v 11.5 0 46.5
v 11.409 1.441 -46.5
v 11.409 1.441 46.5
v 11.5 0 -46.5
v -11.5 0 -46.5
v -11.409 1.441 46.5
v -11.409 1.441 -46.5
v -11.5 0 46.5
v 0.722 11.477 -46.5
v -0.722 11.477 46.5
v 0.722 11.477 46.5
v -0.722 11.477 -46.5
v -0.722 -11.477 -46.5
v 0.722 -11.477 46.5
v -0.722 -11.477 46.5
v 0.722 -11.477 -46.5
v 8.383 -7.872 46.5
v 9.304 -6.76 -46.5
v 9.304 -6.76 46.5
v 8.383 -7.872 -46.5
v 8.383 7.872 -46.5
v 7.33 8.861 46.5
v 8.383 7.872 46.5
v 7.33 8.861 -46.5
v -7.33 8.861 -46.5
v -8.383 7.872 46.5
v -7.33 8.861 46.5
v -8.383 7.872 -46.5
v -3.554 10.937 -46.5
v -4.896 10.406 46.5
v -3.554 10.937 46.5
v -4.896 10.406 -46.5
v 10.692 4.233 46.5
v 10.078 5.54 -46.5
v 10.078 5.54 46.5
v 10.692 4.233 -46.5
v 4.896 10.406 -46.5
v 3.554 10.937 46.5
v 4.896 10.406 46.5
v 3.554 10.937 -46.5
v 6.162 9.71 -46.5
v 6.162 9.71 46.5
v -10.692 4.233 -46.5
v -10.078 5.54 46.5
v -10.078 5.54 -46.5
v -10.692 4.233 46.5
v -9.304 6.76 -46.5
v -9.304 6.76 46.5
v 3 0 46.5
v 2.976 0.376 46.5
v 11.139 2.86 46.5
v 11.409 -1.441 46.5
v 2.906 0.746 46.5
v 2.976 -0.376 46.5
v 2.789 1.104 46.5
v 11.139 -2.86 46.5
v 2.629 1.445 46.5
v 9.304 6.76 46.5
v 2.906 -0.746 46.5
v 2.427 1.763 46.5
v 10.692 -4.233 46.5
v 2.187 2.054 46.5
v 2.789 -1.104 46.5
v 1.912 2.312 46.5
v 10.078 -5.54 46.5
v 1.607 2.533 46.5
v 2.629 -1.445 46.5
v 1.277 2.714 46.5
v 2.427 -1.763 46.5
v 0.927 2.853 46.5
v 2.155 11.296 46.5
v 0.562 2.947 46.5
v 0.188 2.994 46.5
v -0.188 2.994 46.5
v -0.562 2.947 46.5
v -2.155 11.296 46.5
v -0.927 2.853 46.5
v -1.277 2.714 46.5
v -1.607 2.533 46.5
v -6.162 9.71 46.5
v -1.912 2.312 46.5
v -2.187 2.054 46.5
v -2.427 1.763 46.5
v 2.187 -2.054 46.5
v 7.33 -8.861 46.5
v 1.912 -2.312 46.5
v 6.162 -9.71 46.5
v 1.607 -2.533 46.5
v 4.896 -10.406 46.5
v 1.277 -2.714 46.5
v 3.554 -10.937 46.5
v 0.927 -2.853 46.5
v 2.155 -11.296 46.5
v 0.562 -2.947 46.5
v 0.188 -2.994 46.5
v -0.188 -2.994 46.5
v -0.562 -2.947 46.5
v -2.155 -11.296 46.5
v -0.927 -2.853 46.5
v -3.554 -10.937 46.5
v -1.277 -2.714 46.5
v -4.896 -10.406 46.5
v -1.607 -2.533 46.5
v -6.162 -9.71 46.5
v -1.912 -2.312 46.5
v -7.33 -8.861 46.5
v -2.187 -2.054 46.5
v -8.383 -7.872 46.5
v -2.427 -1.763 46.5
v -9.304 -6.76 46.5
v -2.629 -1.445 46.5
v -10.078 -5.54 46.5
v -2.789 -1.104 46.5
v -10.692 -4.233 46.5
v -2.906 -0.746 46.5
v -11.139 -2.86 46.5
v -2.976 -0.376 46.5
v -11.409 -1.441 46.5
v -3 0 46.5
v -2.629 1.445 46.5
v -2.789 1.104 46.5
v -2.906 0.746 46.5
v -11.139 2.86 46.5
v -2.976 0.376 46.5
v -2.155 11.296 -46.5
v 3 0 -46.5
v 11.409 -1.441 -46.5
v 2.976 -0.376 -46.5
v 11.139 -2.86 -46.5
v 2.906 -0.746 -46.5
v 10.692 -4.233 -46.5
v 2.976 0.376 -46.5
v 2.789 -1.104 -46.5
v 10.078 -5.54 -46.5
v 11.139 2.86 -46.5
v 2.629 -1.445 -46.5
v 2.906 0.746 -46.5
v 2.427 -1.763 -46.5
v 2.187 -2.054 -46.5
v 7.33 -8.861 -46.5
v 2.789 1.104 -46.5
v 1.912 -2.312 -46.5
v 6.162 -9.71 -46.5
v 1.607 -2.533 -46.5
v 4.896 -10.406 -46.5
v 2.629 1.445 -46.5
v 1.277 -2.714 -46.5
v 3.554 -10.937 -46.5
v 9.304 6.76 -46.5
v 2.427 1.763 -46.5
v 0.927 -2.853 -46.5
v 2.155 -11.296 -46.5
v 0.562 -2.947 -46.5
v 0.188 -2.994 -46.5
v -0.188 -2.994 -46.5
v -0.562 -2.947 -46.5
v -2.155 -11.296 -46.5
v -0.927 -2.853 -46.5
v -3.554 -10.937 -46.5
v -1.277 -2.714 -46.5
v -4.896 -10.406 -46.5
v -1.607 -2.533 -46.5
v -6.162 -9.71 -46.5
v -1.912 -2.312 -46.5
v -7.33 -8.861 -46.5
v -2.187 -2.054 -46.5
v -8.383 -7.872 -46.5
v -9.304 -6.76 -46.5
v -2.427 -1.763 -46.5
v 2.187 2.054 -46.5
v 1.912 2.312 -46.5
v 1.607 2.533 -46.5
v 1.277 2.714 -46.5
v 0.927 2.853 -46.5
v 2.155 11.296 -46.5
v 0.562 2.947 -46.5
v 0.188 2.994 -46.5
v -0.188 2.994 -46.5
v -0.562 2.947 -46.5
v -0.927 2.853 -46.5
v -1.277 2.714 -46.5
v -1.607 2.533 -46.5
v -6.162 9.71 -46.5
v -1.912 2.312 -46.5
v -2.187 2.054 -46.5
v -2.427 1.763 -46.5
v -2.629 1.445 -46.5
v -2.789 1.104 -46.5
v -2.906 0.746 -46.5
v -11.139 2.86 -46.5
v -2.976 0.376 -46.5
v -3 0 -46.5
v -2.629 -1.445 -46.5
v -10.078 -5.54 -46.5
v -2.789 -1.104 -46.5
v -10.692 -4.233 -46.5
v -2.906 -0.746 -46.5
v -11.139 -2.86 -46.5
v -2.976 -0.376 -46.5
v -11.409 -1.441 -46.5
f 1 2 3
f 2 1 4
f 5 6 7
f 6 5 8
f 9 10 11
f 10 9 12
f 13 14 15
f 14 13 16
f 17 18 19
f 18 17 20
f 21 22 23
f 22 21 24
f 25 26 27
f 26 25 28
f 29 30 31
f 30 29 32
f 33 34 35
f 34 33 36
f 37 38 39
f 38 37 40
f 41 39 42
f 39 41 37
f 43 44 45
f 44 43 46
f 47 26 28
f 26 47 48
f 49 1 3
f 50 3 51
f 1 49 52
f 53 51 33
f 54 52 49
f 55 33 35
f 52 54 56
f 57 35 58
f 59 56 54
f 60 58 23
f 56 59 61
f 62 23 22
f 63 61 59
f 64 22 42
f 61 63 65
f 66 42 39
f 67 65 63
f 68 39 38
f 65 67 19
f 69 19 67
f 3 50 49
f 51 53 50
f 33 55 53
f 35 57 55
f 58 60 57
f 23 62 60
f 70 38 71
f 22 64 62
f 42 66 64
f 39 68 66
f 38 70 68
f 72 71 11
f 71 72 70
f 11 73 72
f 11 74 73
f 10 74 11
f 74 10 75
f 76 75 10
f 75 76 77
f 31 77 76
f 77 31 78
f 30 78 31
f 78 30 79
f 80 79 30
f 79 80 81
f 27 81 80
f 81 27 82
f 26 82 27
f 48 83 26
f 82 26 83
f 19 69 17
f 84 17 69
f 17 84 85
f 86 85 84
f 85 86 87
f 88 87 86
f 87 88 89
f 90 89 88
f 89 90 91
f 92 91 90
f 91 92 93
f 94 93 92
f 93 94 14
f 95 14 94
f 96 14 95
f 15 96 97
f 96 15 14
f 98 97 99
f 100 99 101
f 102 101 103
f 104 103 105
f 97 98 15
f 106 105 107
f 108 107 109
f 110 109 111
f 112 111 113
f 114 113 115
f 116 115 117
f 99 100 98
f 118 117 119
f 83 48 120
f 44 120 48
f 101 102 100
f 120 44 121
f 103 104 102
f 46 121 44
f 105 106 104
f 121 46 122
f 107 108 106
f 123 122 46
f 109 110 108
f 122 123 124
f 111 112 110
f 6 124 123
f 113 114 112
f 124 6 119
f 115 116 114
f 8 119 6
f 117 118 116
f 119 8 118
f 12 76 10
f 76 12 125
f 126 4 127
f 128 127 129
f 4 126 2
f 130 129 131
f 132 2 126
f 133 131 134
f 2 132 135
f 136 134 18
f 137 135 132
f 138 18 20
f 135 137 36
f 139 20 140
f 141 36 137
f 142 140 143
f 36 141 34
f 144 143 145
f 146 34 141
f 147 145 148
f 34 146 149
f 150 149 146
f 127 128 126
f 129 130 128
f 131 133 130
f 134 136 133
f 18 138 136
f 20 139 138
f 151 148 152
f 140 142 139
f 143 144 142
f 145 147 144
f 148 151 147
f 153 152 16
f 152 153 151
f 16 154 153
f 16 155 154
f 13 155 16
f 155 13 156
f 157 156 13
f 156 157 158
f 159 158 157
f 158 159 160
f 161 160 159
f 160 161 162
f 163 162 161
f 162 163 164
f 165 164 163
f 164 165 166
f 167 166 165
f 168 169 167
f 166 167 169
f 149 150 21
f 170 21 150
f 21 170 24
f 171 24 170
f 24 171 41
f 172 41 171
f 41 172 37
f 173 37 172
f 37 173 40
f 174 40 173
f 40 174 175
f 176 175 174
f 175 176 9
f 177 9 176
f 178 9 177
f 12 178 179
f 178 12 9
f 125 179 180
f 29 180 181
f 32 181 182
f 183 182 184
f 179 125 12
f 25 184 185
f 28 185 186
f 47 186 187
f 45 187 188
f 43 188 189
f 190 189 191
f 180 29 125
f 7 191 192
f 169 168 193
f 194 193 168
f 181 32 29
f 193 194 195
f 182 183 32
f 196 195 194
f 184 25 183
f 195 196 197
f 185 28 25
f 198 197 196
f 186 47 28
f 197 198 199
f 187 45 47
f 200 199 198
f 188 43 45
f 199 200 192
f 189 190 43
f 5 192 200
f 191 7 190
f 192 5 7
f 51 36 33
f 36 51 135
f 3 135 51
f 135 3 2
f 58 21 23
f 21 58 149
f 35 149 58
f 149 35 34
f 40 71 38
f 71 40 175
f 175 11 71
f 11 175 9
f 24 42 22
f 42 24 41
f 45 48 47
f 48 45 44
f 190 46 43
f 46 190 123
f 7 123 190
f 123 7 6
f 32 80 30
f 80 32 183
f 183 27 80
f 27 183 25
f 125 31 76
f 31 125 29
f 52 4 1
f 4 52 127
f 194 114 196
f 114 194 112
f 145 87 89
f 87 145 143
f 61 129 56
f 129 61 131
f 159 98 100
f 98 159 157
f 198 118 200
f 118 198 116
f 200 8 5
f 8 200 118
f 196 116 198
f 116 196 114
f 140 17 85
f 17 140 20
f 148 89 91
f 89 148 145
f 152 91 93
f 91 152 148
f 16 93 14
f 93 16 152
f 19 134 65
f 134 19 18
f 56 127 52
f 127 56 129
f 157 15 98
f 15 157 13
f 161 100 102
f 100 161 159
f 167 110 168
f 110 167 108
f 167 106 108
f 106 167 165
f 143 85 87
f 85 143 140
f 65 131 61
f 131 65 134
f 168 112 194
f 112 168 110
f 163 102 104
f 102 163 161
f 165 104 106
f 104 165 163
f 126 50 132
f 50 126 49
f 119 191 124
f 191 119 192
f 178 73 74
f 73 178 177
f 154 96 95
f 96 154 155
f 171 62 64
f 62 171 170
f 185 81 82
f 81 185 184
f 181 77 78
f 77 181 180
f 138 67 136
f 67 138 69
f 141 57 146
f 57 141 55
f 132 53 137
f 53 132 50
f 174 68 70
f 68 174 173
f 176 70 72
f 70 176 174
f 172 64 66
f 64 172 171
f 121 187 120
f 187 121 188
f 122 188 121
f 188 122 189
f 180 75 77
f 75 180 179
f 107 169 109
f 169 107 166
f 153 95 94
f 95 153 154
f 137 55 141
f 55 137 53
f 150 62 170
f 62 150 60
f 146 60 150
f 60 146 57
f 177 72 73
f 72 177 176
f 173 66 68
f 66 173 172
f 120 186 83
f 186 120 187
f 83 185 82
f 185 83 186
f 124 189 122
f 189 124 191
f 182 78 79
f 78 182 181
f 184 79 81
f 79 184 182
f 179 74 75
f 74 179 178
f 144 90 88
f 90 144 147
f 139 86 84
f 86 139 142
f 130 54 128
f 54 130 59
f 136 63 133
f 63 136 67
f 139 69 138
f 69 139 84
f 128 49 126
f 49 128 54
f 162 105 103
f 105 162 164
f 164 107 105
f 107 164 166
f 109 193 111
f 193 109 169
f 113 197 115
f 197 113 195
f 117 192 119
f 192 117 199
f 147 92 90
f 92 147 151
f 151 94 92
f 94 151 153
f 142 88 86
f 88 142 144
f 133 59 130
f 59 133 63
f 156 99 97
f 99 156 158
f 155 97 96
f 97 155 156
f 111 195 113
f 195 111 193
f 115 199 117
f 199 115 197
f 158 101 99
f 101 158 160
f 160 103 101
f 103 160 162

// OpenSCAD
$fn = 50;


difference() {
	union() {
		translate(v = [0, 0, -46.5000000000]) {
			cylinder(h = 93, r = 11.5000000000);
		}
	}
	union() {
		translate(v = [0, 0, -100.0000000000]) {
			cylinder(h = 200, r = 3);
		}
	}
}
